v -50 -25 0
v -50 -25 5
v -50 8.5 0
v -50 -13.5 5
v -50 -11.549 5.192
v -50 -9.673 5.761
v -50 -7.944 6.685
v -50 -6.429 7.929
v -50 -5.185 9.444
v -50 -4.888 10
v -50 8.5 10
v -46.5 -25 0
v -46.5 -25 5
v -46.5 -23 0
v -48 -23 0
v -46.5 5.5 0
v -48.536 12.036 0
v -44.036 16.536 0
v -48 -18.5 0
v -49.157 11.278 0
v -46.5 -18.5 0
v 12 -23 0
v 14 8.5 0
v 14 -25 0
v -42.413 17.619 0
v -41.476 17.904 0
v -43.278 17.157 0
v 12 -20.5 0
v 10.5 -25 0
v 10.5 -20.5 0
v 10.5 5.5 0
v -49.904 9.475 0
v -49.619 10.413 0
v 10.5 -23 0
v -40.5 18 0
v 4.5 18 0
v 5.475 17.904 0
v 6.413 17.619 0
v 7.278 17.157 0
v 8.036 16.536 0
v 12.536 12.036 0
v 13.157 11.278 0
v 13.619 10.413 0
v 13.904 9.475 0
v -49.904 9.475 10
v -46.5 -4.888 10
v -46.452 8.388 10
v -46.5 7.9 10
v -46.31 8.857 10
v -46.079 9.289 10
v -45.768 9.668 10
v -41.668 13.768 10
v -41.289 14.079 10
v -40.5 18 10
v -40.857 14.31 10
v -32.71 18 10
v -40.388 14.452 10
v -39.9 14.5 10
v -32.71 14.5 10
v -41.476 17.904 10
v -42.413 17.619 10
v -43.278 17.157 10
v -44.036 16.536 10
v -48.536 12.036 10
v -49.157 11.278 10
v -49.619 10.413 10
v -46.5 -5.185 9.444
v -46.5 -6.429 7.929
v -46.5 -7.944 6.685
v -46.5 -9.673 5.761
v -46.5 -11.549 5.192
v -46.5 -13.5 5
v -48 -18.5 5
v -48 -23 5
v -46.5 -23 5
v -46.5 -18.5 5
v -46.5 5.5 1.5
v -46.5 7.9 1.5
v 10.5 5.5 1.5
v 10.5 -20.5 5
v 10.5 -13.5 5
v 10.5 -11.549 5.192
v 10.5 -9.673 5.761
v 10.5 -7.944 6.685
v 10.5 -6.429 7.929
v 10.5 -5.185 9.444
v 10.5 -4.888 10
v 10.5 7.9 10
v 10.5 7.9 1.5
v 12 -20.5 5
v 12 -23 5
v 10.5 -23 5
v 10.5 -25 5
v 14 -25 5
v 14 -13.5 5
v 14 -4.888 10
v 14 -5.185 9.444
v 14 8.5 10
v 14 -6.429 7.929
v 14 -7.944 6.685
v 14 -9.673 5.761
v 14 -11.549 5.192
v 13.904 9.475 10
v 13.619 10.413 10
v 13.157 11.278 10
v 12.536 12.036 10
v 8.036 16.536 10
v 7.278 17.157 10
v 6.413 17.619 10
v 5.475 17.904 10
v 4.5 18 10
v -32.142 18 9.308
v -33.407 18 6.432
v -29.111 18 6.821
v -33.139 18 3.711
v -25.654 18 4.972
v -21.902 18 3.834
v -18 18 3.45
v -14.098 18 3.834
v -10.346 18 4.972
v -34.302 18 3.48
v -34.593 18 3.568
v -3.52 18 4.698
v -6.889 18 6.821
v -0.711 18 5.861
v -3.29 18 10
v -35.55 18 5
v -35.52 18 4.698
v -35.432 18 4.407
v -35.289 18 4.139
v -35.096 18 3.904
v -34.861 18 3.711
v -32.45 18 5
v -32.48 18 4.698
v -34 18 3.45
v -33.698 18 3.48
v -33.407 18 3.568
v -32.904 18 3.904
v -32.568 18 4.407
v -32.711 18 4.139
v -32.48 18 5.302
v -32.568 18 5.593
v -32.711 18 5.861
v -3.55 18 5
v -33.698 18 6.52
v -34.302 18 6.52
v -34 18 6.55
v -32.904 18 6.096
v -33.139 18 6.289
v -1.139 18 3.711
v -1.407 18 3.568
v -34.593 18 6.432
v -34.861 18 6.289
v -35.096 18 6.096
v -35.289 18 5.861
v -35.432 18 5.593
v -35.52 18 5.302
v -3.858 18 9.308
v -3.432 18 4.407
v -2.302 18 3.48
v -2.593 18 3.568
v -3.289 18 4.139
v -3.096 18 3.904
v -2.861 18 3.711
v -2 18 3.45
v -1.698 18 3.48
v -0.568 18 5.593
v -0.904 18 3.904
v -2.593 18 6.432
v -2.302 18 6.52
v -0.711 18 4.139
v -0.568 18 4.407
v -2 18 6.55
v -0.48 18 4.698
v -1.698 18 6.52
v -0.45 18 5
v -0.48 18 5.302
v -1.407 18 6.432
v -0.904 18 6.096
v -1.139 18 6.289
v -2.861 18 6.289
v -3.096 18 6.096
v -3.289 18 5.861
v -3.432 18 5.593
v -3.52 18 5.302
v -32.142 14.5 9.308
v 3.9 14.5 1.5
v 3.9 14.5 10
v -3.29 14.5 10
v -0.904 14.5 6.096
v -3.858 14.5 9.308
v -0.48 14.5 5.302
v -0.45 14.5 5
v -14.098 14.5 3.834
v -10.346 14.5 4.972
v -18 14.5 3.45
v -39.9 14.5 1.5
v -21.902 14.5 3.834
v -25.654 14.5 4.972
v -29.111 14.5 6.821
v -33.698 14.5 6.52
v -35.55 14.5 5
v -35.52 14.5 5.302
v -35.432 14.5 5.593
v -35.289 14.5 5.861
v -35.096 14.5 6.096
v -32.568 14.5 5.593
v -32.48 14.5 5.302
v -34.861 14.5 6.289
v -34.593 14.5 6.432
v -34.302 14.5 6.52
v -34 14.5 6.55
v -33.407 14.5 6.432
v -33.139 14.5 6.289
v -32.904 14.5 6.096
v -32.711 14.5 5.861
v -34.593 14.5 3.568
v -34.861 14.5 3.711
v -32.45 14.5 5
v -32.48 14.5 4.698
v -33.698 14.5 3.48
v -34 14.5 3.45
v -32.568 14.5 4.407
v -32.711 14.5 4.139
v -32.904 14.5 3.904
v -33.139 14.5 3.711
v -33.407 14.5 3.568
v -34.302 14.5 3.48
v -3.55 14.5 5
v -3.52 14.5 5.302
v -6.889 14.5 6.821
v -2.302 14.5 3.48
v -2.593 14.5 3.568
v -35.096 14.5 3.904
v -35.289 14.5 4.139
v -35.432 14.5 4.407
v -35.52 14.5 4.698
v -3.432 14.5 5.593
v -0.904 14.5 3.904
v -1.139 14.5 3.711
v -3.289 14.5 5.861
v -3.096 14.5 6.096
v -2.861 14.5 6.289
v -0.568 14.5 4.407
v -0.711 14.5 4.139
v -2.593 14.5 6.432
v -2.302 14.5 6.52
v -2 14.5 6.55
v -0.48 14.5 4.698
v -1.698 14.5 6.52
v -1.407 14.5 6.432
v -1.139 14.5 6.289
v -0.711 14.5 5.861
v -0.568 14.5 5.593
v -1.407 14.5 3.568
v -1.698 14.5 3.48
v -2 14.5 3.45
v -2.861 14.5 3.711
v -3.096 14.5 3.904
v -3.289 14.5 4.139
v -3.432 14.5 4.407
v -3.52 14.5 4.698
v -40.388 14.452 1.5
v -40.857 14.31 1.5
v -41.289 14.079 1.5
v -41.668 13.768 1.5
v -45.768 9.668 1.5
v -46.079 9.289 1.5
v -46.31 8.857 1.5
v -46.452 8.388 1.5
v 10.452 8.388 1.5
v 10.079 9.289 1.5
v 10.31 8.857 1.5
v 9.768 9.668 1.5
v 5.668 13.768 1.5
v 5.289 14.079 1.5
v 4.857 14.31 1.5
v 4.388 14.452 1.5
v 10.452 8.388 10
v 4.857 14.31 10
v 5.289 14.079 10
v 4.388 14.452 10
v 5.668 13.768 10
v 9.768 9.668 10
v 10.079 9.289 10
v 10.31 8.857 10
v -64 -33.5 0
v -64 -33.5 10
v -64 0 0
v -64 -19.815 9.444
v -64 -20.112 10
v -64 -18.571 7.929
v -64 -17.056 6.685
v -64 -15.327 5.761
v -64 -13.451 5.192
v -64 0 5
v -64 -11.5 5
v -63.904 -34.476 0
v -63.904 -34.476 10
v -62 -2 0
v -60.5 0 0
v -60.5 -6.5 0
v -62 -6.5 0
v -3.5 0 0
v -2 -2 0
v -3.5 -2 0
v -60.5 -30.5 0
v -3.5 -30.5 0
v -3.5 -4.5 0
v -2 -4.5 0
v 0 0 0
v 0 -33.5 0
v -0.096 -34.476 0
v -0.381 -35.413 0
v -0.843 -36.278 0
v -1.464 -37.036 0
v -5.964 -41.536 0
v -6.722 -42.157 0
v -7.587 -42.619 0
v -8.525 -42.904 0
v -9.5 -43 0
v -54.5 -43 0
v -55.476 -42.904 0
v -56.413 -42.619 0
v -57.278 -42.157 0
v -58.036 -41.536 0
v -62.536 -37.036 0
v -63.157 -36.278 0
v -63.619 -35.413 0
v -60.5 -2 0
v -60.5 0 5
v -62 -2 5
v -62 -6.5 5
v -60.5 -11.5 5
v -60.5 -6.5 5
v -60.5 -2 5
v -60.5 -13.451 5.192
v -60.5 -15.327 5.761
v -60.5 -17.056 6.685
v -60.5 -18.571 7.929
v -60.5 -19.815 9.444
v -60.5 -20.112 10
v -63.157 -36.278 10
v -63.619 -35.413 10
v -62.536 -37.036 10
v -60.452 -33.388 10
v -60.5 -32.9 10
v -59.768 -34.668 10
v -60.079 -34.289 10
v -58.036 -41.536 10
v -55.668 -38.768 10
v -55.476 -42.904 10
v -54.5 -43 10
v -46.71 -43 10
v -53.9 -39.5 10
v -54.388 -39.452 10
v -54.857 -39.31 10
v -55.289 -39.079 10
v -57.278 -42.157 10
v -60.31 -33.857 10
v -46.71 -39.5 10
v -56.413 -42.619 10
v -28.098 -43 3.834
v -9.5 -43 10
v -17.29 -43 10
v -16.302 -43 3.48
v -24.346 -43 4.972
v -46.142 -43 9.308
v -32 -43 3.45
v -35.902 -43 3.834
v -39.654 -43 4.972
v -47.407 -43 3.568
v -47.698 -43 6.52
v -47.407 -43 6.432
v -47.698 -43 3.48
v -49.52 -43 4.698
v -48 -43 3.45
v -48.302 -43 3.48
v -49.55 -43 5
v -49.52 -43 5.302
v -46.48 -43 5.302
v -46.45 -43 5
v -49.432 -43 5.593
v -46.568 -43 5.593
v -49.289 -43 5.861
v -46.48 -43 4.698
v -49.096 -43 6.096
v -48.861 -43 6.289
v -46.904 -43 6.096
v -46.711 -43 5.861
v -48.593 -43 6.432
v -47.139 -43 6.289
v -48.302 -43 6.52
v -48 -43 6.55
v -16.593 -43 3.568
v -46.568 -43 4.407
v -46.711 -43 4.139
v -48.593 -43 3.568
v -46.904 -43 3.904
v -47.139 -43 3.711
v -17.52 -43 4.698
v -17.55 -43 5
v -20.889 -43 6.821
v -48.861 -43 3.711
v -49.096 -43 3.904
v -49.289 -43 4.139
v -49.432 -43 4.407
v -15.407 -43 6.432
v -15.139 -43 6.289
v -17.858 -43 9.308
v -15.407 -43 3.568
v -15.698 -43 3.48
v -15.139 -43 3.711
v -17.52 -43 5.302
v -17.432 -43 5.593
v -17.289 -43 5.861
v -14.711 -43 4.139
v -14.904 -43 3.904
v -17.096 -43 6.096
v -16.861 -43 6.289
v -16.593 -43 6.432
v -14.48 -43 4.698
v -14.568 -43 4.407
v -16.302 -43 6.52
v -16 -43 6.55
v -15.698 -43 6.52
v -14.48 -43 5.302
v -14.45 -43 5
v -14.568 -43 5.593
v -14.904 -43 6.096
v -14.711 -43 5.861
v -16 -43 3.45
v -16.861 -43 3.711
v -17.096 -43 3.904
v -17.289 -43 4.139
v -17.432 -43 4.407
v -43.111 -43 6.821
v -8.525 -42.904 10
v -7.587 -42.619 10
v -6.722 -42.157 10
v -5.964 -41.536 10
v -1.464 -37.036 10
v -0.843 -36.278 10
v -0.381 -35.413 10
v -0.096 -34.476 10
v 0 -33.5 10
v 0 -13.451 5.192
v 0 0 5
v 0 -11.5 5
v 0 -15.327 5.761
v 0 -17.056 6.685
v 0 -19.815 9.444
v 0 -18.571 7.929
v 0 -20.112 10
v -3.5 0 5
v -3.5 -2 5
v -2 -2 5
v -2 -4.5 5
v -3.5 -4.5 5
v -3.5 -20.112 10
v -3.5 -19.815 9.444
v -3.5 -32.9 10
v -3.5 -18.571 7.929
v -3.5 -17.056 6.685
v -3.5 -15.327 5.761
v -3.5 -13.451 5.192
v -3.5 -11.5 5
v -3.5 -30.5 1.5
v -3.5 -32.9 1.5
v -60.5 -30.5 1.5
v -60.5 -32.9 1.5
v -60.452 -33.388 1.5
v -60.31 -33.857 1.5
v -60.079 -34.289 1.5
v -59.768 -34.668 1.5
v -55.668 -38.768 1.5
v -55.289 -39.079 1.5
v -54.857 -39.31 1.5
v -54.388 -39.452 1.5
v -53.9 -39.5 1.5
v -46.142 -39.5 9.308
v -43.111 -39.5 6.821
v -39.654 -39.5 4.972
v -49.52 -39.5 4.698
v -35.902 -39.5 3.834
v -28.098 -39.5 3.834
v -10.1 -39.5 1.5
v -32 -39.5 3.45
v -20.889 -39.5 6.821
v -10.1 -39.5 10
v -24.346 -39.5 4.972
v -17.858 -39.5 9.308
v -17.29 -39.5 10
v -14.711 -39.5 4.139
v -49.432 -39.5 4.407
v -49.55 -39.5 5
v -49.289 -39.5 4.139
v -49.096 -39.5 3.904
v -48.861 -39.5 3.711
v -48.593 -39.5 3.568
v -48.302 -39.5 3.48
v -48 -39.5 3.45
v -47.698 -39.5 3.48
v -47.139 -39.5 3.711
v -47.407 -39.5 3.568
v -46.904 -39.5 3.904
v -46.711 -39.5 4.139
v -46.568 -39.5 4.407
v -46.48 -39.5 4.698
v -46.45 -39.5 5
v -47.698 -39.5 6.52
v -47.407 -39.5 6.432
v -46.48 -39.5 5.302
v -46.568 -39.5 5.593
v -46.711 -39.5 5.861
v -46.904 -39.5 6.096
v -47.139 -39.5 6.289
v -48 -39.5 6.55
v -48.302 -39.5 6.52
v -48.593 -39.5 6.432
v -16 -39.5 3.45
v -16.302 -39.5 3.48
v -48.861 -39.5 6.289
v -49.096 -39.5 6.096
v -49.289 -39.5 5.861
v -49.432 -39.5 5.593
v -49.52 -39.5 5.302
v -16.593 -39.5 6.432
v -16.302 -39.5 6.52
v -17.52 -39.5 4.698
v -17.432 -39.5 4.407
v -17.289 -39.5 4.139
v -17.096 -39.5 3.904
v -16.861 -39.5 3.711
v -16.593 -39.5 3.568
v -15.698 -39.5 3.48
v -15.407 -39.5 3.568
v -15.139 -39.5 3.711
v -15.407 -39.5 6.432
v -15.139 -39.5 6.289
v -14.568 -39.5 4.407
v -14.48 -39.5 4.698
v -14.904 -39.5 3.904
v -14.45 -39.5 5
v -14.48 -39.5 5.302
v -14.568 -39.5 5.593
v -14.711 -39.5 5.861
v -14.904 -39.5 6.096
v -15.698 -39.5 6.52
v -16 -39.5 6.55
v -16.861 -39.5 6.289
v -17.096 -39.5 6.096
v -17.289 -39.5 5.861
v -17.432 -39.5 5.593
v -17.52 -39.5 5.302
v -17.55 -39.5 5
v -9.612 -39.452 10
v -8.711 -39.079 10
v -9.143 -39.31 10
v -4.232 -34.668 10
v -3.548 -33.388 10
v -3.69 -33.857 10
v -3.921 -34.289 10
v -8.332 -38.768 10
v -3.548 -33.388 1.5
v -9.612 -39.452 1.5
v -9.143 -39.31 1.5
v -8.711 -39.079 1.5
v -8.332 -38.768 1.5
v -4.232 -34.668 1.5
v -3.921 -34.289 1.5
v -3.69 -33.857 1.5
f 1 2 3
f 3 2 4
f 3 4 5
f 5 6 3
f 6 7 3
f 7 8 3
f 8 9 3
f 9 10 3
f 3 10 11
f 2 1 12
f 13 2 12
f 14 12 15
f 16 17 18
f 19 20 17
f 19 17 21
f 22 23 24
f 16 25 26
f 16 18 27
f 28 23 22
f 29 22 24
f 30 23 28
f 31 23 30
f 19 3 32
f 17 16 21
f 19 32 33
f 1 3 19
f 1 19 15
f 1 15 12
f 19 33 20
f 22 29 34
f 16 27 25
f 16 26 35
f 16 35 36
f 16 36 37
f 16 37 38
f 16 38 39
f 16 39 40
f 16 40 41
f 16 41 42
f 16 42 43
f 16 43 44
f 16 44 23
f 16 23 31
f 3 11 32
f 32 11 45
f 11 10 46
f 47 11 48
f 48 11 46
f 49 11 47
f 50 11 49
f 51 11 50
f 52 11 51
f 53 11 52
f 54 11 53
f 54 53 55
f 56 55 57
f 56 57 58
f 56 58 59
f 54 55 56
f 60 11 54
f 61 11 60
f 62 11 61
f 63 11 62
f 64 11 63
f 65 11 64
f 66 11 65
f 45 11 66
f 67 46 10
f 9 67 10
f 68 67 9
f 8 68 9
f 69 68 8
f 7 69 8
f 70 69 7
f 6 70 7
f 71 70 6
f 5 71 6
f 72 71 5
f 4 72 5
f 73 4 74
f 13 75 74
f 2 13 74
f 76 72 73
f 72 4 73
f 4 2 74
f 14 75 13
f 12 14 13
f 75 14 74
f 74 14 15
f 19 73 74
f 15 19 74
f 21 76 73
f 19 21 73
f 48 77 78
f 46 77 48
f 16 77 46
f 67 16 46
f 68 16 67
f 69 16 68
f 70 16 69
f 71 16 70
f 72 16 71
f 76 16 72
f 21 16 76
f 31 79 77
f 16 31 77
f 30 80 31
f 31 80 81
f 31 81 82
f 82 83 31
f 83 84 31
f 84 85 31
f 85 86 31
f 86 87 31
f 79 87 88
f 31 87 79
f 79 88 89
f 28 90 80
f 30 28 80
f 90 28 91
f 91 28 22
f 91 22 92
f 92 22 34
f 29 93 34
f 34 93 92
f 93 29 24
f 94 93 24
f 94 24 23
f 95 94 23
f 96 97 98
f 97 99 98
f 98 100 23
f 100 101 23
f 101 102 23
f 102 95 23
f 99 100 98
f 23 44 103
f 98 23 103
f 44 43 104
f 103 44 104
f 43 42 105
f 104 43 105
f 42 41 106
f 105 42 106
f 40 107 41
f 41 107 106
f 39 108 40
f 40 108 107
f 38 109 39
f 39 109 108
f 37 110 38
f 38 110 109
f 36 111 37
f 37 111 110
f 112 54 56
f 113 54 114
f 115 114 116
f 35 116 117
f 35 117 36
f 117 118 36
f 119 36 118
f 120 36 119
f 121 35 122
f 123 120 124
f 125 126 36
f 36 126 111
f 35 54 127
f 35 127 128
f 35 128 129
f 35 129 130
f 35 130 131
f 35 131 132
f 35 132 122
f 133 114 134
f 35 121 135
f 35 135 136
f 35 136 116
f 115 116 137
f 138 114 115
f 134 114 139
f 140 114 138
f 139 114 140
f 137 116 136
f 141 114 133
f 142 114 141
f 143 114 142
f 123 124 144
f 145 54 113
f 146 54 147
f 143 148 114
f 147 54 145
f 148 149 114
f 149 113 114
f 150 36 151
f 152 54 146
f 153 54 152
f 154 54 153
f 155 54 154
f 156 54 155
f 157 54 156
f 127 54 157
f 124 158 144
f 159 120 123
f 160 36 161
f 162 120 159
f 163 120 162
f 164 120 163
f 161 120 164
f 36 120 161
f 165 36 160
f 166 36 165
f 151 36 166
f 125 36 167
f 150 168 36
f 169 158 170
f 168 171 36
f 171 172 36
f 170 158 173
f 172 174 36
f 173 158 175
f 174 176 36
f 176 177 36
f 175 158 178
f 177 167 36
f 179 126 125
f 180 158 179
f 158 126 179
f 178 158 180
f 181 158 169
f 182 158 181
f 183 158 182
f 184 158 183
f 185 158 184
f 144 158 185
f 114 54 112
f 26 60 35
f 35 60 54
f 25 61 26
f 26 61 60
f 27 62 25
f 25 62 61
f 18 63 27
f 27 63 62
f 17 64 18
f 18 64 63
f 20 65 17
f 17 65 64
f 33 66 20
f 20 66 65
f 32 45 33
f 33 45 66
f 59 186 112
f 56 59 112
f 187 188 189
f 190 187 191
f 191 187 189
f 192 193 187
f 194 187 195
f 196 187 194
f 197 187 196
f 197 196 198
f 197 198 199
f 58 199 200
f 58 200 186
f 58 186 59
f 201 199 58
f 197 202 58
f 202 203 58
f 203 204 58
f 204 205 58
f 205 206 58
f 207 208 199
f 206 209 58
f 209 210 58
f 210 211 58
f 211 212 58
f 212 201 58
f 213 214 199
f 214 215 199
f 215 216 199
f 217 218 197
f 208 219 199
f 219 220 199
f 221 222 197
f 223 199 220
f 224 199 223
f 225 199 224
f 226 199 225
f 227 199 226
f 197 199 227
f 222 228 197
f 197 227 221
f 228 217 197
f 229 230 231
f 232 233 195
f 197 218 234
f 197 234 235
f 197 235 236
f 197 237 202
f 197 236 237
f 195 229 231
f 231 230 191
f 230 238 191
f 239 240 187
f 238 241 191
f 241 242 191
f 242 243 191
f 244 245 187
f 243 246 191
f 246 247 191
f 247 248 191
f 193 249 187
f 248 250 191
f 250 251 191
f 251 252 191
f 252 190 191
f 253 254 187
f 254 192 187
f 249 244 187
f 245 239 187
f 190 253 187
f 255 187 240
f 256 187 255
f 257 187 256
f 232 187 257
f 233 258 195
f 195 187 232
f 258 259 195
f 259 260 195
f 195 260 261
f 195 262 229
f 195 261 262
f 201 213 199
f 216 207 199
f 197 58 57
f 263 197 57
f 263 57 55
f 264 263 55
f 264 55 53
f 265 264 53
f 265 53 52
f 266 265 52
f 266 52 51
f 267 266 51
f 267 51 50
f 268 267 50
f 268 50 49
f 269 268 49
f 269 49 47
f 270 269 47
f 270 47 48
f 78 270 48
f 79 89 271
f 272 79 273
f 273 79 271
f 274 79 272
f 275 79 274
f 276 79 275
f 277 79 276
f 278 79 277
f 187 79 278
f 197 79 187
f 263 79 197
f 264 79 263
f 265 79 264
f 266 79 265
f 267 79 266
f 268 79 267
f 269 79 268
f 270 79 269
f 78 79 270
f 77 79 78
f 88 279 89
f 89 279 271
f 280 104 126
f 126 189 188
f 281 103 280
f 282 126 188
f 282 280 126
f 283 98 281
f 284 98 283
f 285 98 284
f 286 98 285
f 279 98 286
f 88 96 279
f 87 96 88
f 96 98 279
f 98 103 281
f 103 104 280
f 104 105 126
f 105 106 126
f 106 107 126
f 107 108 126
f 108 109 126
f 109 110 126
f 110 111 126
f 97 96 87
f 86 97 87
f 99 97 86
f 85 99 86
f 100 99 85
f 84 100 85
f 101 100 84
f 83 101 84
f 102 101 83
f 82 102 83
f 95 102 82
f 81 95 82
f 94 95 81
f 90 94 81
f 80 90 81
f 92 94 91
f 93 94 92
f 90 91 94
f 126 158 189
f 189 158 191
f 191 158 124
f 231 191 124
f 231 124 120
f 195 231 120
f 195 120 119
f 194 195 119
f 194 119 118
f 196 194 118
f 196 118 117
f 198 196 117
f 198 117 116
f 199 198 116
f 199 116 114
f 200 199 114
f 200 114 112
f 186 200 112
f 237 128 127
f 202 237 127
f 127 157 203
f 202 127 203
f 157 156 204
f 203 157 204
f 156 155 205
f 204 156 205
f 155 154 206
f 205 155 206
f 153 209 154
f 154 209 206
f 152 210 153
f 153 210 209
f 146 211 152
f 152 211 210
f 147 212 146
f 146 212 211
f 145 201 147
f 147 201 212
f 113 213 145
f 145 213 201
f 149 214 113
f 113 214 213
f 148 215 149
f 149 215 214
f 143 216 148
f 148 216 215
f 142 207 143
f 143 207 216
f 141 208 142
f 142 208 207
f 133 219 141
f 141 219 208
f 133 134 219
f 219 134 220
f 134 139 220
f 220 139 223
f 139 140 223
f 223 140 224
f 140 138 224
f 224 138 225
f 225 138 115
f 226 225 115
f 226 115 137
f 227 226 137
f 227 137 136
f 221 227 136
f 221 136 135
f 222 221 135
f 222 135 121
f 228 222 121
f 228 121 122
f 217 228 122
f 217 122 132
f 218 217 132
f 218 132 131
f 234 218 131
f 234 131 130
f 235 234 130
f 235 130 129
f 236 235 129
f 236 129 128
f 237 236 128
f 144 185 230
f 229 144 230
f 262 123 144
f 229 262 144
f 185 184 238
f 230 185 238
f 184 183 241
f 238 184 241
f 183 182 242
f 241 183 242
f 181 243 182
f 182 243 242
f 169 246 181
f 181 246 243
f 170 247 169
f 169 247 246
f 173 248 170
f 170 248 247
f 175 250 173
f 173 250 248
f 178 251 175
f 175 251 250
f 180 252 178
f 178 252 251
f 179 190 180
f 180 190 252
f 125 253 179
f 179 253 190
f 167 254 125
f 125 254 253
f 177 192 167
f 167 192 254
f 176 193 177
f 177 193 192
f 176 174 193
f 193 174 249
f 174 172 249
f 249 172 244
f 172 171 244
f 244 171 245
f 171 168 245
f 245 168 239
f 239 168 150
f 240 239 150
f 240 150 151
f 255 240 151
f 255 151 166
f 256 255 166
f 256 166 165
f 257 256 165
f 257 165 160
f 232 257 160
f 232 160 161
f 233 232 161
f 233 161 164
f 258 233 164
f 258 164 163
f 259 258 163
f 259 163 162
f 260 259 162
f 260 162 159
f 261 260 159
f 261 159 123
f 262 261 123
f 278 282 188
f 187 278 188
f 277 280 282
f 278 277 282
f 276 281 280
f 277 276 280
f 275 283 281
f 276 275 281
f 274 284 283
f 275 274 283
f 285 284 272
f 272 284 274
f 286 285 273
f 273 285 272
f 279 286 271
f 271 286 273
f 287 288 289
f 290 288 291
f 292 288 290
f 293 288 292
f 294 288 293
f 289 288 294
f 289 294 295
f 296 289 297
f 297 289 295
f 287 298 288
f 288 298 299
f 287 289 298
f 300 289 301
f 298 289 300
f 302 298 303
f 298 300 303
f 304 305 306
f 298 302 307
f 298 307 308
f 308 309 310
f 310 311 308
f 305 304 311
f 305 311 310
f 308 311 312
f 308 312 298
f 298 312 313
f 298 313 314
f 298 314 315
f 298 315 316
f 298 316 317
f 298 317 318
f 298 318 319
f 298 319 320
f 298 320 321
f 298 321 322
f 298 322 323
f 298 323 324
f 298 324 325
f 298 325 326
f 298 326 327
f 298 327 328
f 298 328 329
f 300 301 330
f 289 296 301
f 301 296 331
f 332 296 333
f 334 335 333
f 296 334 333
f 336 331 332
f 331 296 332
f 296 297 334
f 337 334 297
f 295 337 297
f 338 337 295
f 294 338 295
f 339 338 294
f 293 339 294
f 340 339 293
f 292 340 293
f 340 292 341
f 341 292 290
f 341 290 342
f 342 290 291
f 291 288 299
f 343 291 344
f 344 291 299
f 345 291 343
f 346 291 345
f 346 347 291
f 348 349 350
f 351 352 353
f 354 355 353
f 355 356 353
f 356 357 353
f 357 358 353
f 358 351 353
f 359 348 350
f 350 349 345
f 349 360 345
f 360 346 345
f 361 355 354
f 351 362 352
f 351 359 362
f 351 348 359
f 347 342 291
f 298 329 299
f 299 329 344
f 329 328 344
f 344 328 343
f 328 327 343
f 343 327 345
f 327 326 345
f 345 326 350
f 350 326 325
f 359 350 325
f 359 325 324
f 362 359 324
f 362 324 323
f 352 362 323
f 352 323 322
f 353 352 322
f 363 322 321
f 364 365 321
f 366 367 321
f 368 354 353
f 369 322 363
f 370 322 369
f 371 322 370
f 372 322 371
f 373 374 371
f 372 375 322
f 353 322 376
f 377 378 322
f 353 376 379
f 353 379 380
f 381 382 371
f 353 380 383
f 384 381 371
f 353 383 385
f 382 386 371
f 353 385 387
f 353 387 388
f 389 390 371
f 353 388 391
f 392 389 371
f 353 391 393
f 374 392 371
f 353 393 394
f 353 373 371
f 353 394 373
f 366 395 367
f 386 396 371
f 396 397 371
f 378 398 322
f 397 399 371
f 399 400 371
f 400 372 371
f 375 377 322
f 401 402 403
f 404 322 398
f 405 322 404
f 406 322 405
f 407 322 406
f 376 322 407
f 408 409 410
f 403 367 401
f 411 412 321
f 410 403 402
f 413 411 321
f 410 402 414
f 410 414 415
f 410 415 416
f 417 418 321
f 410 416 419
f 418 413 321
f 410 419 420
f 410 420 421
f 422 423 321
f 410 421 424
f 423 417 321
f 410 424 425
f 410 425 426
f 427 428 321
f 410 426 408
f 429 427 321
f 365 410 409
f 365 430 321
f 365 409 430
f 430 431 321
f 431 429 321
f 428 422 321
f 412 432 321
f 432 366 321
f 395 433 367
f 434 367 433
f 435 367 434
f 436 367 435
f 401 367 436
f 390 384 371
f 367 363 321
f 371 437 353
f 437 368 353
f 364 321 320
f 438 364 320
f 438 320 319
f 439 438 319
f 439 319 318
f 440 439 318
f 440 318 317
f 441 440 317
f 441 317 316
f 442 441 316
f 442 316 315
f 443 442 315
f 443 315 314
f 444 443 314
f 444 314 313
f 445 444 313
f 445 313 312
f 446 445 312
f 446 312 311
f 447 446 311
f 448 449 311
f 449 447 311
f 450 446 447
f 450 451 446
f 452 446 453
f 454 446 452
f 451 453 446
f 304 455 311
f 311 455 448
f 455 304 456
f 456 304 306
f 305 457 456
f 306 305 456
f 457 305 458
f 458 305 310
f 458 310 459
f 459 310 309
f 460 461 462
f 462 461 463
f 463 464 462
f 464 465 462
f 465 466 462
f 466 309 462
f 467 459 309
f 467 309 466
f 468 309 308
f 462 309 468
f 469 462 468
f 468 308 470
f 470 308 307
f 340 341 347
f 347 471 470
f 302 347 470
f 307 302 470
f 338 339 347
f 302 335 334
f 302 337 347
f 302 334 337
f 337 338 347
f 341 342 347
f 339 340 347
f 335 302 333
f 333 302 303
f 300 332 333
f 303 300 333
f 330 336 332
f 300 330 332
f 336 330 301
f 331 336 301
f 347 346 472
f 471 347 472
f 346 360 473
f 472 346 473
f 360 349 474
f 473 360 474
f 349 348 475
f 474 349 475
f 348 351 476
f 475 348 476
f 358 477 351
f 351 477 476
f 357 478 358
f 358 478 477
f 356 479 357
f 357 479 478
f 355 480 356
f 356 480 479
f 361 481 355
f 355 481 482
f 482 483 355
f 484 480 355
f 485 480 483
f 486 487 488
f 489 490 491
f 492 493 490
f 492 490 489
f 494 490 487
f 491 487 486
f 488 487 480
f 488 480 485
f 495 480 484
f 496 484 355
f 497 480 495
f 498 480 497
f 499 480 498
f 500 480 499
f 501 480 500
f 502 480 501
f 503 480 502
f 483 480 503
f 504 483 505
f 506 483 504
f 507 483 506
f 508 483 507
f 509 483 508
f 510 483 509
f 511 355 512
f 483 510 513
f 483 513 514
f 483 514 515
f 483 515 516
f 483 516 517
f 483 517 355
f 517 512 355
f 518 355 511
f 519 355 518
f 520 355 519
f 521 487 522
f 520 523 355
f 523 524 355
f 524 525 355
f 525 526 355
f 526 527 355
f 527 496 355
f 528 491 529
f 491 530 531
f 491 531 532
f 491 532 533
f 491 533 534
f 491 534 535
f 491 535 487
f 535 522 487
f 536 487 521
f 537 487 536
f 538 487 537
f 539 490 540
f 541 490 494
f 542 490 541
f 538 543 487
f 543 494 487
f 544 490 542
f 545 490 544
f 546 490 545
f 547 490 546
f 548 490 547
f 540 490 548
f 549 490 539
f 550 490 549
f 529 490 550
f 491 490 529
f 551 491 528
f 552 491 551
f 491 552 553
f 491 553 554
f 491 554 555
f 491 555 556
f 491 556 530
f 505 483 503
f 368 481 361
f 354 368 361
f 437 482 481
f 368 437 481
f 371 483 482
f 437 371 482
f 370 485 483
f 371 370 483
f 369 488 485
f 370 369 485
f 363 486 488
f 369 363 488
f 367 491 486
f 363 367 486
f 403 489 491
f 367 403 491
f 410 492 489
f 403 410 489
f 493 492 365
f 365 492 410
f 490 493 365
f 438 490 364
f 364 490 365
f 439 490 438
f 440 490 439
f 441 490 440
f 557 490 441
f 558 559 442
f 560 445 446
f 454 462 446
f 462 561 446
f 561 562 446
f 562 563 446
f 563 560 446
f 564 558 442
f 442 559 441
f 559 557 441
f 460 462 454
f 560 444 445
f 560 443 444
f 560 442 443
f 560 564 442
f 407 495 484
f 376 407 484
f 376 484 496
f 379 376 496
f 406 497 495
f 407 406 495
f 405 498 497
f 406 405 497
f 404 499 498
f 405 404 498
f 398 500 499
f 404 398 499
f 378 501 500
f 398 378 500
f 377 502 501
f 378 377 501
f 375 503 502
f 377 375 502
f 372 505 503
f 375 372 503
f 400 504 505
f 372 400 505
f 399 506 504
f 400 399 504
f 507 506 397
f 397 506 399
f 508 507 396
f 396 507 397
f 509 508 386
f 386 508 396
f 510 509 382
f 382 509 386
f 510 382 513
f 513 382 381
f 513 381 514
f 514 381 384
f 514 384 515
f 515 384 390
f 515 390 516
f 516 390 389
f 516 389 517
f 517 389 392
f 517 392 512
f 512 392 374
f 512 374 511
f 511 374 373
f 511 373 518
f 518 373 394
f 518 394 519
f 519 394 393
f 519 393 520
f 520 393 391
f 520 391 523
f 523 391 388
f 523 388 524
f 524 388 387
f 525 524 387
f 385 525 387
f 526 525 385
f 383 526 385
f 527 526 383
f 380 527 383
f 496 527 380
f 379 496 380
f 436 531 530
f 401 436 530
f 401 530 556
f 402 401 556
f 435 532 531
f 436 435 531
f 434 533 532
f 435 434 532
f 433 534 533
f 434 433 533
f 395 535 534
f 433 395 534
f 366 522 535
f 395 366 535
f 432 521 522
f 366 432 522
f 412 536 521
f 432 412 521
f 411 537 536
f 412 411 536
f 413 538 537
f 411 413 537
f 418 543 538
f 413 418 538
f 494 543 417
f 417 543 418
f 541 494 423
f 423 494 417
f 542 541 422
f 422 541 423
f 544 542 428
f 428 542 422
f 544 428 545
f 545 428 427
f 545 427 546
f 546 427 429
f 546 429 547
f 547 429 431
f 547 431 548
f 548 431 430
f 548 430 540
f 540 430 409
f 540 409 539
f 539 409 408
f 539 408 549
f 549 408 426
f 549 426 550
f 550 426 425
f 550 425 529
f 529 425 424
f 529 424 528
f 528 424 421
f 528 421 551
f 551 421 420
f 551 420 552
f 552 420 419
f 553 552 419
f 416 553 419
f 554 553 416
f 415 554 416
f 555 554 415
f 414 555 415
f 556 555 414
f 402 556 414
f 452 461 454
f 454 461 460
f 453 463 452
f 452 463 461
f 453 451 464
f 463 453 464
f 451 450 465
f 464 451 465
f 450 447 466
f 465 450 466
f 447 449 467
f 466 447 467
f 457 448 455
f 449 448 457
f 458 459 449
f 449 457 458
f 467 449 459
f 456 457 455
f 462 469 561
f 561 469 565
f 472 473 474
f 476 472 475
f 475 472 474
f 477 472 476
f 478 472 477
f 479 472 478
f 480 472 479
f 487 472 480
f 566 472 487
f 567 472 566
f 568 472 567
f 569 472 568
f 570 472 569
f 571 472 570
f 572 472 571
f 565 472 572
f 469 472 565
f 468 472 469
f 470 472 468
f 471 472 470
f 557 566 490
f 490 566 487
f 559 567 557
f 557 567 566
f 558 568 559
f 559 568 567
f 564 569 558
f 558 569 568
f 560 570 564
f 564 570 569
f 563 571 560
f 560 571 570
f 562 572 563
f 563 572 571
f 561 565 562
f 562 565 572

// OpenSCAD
// RAMPS Fan Mount
// Licence: CC BY-SA 3.0, http://creativecommons.org/licenses/by-sa/3.0/
// Author: Dominik Scholz <schlotzz@schlotzz.com> and contributors
// visit: http://www.schlotzz.com
//
// Slightly modified by AJ

module ramps_fan_mount_cutoff_cube(width, height, depth, cutoff = 5, radius = 5)
{
	union()
	{
		cube([width, height - cutoff - radius, depth]);

		hull()
		{
			for (x = [radius, width - radius])
				translate([x, height - cutoff - radius, 0])
					cylinder(r = radius, h = depth);
	
			for (x = [radius + cutoff, width - radius - cutoff])
				translate([x, height - radius, 0])
					cylinder(r = radius, h = depth);
		}
	}
}


module ramps_fan_mount(width = 64, height = 40, depth = 10, fanDia = 40, fanHoleDia = 3.1, fanHoleDist = 32, grooveDepth = 1.5, grooveHeightRight = 2.5, grooveHeightLeft = 2.5, thickness = 3.5, $fn = 16)
{

	difference()
	{
		// base corpus
		ramps_fan_mount_cutoff_cube(width, height, depth, cutoff = 4.5, radius = 5);

		// hollow, leave side air guide
		translate([thickness, -thickness, 1.5])
			ramps_fan_mount_cutoff_cube(width - 2 * thickness, height, depth + 2, cutoff = 4.1, radius = 2.5);

		// remove unneeded air guide
		translate([thickness, -1, -1])
			cube([width - 2 * thickness, height - thickness - 8, depth + 2]);

		// Left Groove
		translate([thickness - grooveDepth, 2, -1])
			cube([thickness + grooveDepth, grooveHeightLeft, depth + 2]);
		
		// Right Groove
		translate([width - thickness, 2, -1])
			cube([grooveDepth , grooveHeightRight, depth + 2]);		
		
		// fan mounting holes
		for (x = [(width - fanHoleDist) / 2, (width + fanHoleDist) / 2])
			translate([x, height + 1, depth / 2])
				rotate([90, 0, 0])
					cylinder(r = fanHoleDia / 2, h = thickness + 2);

		// fan hole
		translate([width / 2, height + 1, depth / 2 + fanDia / 2 - fanHoleDia / 2])
			rotate([90, 0, 0])
				cylinder(r = fanDia / 2, h = thickness + 2);

		// smaller legs
		translate([-1, height / 2 - depth, depth * 1.5])
			rotate([0, 90, 0])
				cylinder(r = depth, h = width + 2);
		translate([-1, -1, depth / 2])
			cube([width + 2, height / 2 - depth + 1, depth / 2 + 1]);

	}

}


translate([-50,-25,0]) 
	ramps_fan_mount($fn = 32, height = 43, grooveHeightLeft = 5 );
rotate([0,0,180])  
	ramps_fan_mount($fn = 32, height = 43, grooveHeightRight = 4.5);
